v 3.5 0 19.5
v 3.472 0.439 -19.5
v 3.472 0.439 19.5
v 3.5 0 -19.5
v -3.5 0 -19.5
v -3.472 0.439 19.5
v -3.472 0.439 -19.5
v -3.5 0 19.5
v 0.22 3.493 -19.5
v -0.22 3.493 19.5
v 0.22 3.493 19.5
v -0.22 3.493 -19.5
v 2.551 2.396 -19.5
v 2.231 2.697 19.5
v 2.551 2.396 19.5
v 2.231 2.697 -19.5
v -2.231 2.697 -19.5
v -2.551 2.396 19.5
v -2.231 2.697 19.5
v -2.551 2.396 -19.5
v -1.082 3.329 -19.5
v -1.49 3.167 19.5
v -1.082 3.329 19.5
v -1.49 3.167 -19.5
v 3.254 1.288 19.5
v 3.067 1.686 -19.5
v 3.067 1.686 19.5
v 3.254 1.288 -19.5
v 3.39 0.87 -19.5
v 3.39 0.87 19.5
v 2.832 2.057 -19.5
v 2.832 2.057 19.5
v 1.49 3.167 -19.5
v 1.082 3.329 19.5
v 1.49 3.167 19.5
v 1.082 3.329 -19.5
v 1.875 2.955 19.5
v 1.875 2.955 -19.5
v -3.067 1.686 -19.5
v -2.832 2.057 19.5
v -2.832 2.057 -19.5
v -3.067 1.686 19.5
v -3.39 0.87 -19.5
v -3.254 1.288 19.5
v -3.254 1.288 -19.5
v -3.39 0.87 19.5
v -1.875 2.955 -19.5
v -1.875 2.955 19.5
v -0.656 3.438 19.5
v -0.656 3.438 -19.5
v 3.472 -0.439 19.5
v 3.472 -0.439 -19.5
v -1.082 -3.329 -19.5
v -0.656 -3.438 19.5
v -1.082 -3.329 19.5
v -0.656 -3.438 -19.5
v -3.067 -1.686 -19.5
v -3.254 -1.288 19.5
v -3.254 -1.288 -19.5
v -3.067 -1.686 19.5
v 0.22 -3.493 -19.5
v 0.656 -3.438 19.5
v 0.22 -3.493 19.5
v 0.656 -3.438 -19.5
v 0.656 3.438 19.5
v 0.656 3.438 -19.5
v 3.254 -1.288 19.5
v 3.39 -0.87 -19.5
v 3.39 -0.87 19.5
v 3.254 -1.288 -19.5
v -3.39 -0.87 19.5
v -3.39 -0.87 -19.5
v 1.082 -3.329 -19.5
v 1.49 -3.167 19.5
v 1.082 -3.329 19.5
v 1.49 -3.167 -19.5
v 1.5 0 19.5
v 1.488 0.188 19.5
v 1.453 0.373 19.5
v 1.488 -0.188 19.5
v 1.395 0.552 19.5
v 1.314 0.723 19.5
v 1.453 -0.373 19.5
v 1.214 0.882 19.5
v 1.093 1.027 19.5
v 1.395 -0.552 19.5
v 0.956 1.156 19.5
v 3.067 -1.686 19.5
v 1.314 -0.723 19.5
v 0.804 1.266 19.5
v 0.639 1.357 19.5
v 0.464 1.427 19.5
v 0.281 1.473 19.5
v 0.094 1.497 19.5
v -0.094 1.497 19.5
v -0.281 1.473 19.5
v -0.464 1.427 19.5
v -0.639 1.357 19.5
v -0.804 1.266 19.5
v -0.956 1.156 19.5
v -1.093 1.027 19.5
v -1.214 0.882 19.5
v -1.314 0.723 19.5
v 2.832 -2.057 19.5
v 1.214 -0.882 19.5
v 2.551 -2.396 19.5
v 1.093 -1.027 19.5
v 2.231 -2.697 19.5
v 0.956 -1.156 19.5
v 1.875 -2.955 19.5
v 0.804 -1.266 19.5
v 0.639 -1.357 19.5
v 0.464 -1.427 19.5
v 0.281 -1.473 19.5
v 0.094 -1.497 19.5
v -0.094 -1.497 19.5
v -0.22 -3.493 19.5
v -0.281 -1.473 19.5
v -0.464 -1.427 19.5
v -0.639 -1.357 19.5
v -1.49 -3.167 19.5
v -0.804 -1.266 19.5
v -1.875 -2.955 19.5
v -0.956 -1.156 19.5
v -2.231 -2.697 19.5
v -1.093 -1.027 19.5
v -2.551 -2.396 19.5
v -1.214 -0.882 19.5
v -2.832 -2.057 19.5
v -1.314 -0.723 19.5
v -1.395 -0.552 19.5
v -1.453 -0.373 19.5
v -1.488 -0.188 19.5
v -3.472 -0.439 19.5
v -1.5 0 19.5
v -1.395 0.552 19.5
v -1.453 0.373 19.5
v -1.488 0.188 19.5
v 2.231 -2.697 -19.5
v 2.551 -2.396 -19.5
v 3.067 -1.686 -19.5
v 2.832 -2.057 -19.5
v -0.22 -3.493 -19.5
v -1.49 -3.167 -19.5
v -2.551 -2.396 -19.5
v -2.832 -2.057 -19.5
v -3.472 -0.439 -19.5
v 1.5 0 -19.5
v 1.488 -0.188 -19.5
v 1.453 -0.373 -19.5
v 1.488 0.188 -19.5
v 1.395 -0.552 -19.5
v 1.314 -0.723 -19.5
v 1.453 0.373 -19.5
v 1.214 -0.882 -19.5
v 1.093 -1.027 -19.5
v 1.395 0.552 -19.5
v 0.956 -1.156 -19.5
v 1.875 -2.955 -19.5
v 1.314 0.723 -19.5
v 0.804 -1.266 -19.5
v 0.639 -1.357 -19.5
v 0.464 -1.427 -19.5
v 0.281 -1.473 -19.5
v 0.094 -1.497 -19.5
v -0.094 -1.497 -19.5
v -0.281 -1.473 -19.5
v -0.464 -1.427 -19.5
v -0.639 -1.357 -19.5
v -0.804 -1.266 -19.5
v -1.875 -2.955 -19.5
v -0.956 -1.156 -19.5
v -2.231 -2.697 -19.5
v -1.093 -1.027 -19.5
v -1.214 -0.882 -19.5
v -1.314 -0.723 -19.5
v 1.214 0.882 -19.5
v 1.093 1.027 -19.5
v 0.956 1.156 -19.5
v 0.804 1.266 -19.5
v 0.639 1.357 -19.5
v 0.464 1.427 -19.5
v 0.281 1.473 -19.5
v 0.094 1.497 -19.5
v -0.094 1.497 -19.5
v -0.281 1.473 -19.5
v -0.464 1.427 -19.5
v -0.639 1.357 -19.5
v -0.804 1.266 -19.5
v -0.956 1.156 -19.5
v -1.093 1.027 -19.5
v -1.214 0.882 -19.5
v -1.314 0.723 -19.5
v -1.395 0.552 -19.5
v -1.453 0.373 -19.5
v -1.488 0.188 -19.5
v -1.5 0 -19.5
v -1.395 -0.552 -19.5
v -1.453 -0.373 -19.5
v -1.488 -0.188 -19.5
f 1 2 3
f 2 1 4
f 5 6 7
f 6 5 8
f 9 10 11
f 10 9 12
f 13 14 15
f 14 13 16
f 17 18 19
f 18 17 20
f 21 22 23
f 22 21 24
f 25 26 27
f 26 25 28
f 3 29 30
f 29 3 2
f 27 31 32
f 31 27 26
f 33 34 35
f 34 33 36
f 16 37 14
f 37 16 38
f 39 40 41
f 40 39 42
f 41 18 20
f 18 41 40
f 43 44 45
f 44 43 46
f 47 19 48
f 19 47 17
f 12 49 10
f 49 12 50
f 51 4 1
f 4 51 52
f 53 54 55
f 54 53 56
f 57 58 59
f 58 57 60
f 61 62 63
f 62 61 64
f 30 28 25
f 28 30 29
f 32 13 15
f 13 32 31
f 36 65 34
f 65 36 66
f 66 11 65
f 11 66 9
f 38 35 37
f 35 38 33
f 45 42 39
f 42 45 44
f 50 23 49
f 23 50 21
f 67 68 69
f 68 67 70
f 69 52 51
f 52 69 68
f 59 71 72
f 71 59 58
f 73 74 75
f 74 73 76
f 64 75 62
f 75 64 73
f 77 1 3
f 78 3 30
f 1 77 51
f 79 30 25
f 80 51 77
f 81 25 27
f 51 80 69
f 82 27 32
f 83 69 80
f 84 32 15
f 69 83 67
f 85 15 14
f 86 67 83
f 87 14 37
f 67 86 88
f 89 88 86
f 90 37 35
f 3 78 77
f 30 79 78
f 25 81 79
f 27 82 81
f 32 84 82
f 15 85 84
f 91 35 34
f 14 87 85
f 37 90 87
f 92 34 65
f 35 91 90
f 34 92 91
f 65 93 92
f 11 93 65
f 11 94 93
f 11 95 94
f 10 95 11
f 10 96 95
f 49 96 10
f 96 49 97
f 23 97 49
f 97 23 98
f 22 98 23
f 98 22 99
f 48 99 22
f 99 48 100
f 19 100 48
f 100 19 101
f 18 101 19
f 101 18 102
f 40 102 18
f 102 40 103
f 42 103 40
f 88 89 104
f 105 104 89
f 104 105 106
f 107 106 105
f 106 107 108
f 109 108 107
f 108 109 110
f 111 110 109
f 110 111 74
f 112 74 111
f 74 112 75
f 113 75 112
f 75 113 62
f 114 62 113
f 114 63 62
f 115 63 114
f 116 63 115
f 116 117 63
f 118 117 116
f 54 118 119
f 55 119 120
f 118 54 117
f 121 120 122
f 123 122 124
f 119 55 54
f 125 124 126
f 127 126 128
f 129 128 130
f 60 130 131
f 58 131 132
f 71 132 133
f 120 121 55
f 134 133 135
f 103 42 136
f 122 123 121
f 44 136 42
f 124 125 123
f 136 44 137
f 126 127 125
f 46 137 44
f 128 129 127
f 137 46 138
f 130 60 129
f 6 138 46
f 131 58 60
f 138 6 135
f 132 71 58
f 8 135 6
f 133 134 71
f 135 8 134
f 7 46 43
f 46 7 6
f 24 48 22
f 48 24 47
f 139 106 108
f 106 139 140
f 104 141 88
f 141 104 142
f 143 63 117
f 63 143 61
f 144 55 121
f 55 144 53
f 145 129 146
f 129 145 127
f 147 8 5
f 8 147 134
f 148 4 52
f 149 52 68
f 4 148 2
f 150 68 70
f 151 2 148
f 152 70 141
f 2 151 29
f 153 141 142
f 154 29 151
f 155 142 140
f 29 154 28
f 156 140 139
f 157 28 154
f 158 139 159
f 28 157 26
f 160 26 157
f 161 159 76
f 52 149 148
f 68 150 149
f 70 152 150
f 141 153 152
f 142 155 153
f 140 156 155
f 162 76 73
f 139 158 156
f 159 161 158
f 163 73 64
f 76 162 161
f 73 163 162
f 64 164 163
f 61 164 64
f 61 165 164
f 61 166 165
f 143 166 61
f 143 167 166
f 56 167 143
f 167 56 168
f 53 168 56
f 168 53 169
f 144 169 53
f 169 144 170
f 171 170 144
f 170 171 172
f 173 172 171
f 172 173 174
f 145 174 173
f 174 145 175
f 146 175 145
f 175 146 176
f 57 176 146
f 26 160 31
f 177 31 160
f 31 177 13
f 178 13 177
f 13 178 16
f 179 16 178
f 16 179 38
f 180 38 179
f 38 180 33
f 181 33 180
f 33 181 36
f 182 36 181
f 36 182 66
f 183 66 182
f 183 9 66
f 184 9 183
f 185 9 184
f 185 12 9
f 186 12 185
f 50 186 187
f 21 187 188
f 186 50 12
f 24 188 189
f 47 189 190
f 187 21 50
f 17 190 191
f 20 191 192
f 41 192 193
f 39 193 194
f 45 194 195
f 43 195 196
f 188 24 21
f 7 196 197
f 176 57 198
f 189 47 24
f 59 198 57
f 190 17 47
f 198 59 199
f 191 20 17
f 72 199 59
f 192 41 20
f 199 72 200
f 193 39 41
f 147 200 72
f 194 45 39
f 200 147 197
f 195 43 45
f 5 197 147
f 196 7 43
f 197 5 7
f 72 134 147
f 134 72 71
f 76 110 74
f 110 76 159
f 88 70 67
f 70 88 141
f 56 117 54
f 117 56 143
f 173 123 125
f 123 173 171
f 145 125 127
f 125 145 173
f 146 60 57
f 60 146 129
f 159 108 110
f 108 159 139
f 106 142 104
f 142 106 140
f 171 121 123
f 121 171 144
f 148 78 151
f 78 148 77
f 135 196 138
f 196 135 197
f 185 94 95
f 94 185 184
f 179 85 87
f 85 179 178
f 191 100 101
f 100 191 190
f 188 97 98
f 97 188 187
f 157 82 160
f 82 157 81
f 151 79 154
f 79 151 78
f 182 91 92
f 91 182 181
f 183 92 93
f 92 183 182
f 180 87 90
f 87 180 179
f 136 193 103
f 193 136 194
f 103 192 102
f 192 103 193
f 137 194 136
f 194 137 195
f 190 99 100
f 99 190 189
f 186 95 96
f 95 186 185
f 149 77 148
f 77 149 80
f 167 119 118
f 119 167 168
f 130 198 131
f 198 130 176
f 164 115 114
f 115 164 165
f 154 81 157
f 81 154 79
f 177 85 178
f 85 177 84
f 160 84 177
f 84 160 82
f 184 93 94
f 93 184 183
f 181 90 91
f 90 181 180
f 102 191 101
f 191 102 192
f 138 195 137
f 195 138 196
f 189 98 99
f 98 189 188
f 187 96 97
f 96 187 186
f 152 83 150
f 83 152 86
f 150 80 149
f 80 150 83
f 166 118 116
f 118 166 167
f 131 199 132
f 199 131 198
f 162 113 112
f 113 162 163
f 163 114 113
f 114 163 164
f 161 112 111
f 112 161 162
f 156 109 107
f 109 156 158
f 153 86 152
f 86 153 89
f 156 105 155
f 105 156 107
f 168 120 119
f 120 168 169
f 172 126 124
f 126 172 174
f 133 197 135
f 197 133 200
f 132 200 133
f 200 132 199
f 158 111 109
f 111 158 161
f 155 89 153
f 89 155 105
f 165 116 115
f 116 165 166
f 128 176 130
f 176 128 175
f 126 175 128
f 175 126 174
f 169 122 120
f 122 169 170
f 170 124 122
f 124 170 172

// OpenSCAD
$fn = 50;


difference() {
	union() {
		translate(v = [0, 0, -19.5000000000]) {
			cylinder(h = 39, r = 3.5000000000);
		}
	}
	union() {
		translate(v = [0, 0, -100.0000000000]) {
			cylinder(h = 200, r = 1.5000000000);
		}
	}
}
